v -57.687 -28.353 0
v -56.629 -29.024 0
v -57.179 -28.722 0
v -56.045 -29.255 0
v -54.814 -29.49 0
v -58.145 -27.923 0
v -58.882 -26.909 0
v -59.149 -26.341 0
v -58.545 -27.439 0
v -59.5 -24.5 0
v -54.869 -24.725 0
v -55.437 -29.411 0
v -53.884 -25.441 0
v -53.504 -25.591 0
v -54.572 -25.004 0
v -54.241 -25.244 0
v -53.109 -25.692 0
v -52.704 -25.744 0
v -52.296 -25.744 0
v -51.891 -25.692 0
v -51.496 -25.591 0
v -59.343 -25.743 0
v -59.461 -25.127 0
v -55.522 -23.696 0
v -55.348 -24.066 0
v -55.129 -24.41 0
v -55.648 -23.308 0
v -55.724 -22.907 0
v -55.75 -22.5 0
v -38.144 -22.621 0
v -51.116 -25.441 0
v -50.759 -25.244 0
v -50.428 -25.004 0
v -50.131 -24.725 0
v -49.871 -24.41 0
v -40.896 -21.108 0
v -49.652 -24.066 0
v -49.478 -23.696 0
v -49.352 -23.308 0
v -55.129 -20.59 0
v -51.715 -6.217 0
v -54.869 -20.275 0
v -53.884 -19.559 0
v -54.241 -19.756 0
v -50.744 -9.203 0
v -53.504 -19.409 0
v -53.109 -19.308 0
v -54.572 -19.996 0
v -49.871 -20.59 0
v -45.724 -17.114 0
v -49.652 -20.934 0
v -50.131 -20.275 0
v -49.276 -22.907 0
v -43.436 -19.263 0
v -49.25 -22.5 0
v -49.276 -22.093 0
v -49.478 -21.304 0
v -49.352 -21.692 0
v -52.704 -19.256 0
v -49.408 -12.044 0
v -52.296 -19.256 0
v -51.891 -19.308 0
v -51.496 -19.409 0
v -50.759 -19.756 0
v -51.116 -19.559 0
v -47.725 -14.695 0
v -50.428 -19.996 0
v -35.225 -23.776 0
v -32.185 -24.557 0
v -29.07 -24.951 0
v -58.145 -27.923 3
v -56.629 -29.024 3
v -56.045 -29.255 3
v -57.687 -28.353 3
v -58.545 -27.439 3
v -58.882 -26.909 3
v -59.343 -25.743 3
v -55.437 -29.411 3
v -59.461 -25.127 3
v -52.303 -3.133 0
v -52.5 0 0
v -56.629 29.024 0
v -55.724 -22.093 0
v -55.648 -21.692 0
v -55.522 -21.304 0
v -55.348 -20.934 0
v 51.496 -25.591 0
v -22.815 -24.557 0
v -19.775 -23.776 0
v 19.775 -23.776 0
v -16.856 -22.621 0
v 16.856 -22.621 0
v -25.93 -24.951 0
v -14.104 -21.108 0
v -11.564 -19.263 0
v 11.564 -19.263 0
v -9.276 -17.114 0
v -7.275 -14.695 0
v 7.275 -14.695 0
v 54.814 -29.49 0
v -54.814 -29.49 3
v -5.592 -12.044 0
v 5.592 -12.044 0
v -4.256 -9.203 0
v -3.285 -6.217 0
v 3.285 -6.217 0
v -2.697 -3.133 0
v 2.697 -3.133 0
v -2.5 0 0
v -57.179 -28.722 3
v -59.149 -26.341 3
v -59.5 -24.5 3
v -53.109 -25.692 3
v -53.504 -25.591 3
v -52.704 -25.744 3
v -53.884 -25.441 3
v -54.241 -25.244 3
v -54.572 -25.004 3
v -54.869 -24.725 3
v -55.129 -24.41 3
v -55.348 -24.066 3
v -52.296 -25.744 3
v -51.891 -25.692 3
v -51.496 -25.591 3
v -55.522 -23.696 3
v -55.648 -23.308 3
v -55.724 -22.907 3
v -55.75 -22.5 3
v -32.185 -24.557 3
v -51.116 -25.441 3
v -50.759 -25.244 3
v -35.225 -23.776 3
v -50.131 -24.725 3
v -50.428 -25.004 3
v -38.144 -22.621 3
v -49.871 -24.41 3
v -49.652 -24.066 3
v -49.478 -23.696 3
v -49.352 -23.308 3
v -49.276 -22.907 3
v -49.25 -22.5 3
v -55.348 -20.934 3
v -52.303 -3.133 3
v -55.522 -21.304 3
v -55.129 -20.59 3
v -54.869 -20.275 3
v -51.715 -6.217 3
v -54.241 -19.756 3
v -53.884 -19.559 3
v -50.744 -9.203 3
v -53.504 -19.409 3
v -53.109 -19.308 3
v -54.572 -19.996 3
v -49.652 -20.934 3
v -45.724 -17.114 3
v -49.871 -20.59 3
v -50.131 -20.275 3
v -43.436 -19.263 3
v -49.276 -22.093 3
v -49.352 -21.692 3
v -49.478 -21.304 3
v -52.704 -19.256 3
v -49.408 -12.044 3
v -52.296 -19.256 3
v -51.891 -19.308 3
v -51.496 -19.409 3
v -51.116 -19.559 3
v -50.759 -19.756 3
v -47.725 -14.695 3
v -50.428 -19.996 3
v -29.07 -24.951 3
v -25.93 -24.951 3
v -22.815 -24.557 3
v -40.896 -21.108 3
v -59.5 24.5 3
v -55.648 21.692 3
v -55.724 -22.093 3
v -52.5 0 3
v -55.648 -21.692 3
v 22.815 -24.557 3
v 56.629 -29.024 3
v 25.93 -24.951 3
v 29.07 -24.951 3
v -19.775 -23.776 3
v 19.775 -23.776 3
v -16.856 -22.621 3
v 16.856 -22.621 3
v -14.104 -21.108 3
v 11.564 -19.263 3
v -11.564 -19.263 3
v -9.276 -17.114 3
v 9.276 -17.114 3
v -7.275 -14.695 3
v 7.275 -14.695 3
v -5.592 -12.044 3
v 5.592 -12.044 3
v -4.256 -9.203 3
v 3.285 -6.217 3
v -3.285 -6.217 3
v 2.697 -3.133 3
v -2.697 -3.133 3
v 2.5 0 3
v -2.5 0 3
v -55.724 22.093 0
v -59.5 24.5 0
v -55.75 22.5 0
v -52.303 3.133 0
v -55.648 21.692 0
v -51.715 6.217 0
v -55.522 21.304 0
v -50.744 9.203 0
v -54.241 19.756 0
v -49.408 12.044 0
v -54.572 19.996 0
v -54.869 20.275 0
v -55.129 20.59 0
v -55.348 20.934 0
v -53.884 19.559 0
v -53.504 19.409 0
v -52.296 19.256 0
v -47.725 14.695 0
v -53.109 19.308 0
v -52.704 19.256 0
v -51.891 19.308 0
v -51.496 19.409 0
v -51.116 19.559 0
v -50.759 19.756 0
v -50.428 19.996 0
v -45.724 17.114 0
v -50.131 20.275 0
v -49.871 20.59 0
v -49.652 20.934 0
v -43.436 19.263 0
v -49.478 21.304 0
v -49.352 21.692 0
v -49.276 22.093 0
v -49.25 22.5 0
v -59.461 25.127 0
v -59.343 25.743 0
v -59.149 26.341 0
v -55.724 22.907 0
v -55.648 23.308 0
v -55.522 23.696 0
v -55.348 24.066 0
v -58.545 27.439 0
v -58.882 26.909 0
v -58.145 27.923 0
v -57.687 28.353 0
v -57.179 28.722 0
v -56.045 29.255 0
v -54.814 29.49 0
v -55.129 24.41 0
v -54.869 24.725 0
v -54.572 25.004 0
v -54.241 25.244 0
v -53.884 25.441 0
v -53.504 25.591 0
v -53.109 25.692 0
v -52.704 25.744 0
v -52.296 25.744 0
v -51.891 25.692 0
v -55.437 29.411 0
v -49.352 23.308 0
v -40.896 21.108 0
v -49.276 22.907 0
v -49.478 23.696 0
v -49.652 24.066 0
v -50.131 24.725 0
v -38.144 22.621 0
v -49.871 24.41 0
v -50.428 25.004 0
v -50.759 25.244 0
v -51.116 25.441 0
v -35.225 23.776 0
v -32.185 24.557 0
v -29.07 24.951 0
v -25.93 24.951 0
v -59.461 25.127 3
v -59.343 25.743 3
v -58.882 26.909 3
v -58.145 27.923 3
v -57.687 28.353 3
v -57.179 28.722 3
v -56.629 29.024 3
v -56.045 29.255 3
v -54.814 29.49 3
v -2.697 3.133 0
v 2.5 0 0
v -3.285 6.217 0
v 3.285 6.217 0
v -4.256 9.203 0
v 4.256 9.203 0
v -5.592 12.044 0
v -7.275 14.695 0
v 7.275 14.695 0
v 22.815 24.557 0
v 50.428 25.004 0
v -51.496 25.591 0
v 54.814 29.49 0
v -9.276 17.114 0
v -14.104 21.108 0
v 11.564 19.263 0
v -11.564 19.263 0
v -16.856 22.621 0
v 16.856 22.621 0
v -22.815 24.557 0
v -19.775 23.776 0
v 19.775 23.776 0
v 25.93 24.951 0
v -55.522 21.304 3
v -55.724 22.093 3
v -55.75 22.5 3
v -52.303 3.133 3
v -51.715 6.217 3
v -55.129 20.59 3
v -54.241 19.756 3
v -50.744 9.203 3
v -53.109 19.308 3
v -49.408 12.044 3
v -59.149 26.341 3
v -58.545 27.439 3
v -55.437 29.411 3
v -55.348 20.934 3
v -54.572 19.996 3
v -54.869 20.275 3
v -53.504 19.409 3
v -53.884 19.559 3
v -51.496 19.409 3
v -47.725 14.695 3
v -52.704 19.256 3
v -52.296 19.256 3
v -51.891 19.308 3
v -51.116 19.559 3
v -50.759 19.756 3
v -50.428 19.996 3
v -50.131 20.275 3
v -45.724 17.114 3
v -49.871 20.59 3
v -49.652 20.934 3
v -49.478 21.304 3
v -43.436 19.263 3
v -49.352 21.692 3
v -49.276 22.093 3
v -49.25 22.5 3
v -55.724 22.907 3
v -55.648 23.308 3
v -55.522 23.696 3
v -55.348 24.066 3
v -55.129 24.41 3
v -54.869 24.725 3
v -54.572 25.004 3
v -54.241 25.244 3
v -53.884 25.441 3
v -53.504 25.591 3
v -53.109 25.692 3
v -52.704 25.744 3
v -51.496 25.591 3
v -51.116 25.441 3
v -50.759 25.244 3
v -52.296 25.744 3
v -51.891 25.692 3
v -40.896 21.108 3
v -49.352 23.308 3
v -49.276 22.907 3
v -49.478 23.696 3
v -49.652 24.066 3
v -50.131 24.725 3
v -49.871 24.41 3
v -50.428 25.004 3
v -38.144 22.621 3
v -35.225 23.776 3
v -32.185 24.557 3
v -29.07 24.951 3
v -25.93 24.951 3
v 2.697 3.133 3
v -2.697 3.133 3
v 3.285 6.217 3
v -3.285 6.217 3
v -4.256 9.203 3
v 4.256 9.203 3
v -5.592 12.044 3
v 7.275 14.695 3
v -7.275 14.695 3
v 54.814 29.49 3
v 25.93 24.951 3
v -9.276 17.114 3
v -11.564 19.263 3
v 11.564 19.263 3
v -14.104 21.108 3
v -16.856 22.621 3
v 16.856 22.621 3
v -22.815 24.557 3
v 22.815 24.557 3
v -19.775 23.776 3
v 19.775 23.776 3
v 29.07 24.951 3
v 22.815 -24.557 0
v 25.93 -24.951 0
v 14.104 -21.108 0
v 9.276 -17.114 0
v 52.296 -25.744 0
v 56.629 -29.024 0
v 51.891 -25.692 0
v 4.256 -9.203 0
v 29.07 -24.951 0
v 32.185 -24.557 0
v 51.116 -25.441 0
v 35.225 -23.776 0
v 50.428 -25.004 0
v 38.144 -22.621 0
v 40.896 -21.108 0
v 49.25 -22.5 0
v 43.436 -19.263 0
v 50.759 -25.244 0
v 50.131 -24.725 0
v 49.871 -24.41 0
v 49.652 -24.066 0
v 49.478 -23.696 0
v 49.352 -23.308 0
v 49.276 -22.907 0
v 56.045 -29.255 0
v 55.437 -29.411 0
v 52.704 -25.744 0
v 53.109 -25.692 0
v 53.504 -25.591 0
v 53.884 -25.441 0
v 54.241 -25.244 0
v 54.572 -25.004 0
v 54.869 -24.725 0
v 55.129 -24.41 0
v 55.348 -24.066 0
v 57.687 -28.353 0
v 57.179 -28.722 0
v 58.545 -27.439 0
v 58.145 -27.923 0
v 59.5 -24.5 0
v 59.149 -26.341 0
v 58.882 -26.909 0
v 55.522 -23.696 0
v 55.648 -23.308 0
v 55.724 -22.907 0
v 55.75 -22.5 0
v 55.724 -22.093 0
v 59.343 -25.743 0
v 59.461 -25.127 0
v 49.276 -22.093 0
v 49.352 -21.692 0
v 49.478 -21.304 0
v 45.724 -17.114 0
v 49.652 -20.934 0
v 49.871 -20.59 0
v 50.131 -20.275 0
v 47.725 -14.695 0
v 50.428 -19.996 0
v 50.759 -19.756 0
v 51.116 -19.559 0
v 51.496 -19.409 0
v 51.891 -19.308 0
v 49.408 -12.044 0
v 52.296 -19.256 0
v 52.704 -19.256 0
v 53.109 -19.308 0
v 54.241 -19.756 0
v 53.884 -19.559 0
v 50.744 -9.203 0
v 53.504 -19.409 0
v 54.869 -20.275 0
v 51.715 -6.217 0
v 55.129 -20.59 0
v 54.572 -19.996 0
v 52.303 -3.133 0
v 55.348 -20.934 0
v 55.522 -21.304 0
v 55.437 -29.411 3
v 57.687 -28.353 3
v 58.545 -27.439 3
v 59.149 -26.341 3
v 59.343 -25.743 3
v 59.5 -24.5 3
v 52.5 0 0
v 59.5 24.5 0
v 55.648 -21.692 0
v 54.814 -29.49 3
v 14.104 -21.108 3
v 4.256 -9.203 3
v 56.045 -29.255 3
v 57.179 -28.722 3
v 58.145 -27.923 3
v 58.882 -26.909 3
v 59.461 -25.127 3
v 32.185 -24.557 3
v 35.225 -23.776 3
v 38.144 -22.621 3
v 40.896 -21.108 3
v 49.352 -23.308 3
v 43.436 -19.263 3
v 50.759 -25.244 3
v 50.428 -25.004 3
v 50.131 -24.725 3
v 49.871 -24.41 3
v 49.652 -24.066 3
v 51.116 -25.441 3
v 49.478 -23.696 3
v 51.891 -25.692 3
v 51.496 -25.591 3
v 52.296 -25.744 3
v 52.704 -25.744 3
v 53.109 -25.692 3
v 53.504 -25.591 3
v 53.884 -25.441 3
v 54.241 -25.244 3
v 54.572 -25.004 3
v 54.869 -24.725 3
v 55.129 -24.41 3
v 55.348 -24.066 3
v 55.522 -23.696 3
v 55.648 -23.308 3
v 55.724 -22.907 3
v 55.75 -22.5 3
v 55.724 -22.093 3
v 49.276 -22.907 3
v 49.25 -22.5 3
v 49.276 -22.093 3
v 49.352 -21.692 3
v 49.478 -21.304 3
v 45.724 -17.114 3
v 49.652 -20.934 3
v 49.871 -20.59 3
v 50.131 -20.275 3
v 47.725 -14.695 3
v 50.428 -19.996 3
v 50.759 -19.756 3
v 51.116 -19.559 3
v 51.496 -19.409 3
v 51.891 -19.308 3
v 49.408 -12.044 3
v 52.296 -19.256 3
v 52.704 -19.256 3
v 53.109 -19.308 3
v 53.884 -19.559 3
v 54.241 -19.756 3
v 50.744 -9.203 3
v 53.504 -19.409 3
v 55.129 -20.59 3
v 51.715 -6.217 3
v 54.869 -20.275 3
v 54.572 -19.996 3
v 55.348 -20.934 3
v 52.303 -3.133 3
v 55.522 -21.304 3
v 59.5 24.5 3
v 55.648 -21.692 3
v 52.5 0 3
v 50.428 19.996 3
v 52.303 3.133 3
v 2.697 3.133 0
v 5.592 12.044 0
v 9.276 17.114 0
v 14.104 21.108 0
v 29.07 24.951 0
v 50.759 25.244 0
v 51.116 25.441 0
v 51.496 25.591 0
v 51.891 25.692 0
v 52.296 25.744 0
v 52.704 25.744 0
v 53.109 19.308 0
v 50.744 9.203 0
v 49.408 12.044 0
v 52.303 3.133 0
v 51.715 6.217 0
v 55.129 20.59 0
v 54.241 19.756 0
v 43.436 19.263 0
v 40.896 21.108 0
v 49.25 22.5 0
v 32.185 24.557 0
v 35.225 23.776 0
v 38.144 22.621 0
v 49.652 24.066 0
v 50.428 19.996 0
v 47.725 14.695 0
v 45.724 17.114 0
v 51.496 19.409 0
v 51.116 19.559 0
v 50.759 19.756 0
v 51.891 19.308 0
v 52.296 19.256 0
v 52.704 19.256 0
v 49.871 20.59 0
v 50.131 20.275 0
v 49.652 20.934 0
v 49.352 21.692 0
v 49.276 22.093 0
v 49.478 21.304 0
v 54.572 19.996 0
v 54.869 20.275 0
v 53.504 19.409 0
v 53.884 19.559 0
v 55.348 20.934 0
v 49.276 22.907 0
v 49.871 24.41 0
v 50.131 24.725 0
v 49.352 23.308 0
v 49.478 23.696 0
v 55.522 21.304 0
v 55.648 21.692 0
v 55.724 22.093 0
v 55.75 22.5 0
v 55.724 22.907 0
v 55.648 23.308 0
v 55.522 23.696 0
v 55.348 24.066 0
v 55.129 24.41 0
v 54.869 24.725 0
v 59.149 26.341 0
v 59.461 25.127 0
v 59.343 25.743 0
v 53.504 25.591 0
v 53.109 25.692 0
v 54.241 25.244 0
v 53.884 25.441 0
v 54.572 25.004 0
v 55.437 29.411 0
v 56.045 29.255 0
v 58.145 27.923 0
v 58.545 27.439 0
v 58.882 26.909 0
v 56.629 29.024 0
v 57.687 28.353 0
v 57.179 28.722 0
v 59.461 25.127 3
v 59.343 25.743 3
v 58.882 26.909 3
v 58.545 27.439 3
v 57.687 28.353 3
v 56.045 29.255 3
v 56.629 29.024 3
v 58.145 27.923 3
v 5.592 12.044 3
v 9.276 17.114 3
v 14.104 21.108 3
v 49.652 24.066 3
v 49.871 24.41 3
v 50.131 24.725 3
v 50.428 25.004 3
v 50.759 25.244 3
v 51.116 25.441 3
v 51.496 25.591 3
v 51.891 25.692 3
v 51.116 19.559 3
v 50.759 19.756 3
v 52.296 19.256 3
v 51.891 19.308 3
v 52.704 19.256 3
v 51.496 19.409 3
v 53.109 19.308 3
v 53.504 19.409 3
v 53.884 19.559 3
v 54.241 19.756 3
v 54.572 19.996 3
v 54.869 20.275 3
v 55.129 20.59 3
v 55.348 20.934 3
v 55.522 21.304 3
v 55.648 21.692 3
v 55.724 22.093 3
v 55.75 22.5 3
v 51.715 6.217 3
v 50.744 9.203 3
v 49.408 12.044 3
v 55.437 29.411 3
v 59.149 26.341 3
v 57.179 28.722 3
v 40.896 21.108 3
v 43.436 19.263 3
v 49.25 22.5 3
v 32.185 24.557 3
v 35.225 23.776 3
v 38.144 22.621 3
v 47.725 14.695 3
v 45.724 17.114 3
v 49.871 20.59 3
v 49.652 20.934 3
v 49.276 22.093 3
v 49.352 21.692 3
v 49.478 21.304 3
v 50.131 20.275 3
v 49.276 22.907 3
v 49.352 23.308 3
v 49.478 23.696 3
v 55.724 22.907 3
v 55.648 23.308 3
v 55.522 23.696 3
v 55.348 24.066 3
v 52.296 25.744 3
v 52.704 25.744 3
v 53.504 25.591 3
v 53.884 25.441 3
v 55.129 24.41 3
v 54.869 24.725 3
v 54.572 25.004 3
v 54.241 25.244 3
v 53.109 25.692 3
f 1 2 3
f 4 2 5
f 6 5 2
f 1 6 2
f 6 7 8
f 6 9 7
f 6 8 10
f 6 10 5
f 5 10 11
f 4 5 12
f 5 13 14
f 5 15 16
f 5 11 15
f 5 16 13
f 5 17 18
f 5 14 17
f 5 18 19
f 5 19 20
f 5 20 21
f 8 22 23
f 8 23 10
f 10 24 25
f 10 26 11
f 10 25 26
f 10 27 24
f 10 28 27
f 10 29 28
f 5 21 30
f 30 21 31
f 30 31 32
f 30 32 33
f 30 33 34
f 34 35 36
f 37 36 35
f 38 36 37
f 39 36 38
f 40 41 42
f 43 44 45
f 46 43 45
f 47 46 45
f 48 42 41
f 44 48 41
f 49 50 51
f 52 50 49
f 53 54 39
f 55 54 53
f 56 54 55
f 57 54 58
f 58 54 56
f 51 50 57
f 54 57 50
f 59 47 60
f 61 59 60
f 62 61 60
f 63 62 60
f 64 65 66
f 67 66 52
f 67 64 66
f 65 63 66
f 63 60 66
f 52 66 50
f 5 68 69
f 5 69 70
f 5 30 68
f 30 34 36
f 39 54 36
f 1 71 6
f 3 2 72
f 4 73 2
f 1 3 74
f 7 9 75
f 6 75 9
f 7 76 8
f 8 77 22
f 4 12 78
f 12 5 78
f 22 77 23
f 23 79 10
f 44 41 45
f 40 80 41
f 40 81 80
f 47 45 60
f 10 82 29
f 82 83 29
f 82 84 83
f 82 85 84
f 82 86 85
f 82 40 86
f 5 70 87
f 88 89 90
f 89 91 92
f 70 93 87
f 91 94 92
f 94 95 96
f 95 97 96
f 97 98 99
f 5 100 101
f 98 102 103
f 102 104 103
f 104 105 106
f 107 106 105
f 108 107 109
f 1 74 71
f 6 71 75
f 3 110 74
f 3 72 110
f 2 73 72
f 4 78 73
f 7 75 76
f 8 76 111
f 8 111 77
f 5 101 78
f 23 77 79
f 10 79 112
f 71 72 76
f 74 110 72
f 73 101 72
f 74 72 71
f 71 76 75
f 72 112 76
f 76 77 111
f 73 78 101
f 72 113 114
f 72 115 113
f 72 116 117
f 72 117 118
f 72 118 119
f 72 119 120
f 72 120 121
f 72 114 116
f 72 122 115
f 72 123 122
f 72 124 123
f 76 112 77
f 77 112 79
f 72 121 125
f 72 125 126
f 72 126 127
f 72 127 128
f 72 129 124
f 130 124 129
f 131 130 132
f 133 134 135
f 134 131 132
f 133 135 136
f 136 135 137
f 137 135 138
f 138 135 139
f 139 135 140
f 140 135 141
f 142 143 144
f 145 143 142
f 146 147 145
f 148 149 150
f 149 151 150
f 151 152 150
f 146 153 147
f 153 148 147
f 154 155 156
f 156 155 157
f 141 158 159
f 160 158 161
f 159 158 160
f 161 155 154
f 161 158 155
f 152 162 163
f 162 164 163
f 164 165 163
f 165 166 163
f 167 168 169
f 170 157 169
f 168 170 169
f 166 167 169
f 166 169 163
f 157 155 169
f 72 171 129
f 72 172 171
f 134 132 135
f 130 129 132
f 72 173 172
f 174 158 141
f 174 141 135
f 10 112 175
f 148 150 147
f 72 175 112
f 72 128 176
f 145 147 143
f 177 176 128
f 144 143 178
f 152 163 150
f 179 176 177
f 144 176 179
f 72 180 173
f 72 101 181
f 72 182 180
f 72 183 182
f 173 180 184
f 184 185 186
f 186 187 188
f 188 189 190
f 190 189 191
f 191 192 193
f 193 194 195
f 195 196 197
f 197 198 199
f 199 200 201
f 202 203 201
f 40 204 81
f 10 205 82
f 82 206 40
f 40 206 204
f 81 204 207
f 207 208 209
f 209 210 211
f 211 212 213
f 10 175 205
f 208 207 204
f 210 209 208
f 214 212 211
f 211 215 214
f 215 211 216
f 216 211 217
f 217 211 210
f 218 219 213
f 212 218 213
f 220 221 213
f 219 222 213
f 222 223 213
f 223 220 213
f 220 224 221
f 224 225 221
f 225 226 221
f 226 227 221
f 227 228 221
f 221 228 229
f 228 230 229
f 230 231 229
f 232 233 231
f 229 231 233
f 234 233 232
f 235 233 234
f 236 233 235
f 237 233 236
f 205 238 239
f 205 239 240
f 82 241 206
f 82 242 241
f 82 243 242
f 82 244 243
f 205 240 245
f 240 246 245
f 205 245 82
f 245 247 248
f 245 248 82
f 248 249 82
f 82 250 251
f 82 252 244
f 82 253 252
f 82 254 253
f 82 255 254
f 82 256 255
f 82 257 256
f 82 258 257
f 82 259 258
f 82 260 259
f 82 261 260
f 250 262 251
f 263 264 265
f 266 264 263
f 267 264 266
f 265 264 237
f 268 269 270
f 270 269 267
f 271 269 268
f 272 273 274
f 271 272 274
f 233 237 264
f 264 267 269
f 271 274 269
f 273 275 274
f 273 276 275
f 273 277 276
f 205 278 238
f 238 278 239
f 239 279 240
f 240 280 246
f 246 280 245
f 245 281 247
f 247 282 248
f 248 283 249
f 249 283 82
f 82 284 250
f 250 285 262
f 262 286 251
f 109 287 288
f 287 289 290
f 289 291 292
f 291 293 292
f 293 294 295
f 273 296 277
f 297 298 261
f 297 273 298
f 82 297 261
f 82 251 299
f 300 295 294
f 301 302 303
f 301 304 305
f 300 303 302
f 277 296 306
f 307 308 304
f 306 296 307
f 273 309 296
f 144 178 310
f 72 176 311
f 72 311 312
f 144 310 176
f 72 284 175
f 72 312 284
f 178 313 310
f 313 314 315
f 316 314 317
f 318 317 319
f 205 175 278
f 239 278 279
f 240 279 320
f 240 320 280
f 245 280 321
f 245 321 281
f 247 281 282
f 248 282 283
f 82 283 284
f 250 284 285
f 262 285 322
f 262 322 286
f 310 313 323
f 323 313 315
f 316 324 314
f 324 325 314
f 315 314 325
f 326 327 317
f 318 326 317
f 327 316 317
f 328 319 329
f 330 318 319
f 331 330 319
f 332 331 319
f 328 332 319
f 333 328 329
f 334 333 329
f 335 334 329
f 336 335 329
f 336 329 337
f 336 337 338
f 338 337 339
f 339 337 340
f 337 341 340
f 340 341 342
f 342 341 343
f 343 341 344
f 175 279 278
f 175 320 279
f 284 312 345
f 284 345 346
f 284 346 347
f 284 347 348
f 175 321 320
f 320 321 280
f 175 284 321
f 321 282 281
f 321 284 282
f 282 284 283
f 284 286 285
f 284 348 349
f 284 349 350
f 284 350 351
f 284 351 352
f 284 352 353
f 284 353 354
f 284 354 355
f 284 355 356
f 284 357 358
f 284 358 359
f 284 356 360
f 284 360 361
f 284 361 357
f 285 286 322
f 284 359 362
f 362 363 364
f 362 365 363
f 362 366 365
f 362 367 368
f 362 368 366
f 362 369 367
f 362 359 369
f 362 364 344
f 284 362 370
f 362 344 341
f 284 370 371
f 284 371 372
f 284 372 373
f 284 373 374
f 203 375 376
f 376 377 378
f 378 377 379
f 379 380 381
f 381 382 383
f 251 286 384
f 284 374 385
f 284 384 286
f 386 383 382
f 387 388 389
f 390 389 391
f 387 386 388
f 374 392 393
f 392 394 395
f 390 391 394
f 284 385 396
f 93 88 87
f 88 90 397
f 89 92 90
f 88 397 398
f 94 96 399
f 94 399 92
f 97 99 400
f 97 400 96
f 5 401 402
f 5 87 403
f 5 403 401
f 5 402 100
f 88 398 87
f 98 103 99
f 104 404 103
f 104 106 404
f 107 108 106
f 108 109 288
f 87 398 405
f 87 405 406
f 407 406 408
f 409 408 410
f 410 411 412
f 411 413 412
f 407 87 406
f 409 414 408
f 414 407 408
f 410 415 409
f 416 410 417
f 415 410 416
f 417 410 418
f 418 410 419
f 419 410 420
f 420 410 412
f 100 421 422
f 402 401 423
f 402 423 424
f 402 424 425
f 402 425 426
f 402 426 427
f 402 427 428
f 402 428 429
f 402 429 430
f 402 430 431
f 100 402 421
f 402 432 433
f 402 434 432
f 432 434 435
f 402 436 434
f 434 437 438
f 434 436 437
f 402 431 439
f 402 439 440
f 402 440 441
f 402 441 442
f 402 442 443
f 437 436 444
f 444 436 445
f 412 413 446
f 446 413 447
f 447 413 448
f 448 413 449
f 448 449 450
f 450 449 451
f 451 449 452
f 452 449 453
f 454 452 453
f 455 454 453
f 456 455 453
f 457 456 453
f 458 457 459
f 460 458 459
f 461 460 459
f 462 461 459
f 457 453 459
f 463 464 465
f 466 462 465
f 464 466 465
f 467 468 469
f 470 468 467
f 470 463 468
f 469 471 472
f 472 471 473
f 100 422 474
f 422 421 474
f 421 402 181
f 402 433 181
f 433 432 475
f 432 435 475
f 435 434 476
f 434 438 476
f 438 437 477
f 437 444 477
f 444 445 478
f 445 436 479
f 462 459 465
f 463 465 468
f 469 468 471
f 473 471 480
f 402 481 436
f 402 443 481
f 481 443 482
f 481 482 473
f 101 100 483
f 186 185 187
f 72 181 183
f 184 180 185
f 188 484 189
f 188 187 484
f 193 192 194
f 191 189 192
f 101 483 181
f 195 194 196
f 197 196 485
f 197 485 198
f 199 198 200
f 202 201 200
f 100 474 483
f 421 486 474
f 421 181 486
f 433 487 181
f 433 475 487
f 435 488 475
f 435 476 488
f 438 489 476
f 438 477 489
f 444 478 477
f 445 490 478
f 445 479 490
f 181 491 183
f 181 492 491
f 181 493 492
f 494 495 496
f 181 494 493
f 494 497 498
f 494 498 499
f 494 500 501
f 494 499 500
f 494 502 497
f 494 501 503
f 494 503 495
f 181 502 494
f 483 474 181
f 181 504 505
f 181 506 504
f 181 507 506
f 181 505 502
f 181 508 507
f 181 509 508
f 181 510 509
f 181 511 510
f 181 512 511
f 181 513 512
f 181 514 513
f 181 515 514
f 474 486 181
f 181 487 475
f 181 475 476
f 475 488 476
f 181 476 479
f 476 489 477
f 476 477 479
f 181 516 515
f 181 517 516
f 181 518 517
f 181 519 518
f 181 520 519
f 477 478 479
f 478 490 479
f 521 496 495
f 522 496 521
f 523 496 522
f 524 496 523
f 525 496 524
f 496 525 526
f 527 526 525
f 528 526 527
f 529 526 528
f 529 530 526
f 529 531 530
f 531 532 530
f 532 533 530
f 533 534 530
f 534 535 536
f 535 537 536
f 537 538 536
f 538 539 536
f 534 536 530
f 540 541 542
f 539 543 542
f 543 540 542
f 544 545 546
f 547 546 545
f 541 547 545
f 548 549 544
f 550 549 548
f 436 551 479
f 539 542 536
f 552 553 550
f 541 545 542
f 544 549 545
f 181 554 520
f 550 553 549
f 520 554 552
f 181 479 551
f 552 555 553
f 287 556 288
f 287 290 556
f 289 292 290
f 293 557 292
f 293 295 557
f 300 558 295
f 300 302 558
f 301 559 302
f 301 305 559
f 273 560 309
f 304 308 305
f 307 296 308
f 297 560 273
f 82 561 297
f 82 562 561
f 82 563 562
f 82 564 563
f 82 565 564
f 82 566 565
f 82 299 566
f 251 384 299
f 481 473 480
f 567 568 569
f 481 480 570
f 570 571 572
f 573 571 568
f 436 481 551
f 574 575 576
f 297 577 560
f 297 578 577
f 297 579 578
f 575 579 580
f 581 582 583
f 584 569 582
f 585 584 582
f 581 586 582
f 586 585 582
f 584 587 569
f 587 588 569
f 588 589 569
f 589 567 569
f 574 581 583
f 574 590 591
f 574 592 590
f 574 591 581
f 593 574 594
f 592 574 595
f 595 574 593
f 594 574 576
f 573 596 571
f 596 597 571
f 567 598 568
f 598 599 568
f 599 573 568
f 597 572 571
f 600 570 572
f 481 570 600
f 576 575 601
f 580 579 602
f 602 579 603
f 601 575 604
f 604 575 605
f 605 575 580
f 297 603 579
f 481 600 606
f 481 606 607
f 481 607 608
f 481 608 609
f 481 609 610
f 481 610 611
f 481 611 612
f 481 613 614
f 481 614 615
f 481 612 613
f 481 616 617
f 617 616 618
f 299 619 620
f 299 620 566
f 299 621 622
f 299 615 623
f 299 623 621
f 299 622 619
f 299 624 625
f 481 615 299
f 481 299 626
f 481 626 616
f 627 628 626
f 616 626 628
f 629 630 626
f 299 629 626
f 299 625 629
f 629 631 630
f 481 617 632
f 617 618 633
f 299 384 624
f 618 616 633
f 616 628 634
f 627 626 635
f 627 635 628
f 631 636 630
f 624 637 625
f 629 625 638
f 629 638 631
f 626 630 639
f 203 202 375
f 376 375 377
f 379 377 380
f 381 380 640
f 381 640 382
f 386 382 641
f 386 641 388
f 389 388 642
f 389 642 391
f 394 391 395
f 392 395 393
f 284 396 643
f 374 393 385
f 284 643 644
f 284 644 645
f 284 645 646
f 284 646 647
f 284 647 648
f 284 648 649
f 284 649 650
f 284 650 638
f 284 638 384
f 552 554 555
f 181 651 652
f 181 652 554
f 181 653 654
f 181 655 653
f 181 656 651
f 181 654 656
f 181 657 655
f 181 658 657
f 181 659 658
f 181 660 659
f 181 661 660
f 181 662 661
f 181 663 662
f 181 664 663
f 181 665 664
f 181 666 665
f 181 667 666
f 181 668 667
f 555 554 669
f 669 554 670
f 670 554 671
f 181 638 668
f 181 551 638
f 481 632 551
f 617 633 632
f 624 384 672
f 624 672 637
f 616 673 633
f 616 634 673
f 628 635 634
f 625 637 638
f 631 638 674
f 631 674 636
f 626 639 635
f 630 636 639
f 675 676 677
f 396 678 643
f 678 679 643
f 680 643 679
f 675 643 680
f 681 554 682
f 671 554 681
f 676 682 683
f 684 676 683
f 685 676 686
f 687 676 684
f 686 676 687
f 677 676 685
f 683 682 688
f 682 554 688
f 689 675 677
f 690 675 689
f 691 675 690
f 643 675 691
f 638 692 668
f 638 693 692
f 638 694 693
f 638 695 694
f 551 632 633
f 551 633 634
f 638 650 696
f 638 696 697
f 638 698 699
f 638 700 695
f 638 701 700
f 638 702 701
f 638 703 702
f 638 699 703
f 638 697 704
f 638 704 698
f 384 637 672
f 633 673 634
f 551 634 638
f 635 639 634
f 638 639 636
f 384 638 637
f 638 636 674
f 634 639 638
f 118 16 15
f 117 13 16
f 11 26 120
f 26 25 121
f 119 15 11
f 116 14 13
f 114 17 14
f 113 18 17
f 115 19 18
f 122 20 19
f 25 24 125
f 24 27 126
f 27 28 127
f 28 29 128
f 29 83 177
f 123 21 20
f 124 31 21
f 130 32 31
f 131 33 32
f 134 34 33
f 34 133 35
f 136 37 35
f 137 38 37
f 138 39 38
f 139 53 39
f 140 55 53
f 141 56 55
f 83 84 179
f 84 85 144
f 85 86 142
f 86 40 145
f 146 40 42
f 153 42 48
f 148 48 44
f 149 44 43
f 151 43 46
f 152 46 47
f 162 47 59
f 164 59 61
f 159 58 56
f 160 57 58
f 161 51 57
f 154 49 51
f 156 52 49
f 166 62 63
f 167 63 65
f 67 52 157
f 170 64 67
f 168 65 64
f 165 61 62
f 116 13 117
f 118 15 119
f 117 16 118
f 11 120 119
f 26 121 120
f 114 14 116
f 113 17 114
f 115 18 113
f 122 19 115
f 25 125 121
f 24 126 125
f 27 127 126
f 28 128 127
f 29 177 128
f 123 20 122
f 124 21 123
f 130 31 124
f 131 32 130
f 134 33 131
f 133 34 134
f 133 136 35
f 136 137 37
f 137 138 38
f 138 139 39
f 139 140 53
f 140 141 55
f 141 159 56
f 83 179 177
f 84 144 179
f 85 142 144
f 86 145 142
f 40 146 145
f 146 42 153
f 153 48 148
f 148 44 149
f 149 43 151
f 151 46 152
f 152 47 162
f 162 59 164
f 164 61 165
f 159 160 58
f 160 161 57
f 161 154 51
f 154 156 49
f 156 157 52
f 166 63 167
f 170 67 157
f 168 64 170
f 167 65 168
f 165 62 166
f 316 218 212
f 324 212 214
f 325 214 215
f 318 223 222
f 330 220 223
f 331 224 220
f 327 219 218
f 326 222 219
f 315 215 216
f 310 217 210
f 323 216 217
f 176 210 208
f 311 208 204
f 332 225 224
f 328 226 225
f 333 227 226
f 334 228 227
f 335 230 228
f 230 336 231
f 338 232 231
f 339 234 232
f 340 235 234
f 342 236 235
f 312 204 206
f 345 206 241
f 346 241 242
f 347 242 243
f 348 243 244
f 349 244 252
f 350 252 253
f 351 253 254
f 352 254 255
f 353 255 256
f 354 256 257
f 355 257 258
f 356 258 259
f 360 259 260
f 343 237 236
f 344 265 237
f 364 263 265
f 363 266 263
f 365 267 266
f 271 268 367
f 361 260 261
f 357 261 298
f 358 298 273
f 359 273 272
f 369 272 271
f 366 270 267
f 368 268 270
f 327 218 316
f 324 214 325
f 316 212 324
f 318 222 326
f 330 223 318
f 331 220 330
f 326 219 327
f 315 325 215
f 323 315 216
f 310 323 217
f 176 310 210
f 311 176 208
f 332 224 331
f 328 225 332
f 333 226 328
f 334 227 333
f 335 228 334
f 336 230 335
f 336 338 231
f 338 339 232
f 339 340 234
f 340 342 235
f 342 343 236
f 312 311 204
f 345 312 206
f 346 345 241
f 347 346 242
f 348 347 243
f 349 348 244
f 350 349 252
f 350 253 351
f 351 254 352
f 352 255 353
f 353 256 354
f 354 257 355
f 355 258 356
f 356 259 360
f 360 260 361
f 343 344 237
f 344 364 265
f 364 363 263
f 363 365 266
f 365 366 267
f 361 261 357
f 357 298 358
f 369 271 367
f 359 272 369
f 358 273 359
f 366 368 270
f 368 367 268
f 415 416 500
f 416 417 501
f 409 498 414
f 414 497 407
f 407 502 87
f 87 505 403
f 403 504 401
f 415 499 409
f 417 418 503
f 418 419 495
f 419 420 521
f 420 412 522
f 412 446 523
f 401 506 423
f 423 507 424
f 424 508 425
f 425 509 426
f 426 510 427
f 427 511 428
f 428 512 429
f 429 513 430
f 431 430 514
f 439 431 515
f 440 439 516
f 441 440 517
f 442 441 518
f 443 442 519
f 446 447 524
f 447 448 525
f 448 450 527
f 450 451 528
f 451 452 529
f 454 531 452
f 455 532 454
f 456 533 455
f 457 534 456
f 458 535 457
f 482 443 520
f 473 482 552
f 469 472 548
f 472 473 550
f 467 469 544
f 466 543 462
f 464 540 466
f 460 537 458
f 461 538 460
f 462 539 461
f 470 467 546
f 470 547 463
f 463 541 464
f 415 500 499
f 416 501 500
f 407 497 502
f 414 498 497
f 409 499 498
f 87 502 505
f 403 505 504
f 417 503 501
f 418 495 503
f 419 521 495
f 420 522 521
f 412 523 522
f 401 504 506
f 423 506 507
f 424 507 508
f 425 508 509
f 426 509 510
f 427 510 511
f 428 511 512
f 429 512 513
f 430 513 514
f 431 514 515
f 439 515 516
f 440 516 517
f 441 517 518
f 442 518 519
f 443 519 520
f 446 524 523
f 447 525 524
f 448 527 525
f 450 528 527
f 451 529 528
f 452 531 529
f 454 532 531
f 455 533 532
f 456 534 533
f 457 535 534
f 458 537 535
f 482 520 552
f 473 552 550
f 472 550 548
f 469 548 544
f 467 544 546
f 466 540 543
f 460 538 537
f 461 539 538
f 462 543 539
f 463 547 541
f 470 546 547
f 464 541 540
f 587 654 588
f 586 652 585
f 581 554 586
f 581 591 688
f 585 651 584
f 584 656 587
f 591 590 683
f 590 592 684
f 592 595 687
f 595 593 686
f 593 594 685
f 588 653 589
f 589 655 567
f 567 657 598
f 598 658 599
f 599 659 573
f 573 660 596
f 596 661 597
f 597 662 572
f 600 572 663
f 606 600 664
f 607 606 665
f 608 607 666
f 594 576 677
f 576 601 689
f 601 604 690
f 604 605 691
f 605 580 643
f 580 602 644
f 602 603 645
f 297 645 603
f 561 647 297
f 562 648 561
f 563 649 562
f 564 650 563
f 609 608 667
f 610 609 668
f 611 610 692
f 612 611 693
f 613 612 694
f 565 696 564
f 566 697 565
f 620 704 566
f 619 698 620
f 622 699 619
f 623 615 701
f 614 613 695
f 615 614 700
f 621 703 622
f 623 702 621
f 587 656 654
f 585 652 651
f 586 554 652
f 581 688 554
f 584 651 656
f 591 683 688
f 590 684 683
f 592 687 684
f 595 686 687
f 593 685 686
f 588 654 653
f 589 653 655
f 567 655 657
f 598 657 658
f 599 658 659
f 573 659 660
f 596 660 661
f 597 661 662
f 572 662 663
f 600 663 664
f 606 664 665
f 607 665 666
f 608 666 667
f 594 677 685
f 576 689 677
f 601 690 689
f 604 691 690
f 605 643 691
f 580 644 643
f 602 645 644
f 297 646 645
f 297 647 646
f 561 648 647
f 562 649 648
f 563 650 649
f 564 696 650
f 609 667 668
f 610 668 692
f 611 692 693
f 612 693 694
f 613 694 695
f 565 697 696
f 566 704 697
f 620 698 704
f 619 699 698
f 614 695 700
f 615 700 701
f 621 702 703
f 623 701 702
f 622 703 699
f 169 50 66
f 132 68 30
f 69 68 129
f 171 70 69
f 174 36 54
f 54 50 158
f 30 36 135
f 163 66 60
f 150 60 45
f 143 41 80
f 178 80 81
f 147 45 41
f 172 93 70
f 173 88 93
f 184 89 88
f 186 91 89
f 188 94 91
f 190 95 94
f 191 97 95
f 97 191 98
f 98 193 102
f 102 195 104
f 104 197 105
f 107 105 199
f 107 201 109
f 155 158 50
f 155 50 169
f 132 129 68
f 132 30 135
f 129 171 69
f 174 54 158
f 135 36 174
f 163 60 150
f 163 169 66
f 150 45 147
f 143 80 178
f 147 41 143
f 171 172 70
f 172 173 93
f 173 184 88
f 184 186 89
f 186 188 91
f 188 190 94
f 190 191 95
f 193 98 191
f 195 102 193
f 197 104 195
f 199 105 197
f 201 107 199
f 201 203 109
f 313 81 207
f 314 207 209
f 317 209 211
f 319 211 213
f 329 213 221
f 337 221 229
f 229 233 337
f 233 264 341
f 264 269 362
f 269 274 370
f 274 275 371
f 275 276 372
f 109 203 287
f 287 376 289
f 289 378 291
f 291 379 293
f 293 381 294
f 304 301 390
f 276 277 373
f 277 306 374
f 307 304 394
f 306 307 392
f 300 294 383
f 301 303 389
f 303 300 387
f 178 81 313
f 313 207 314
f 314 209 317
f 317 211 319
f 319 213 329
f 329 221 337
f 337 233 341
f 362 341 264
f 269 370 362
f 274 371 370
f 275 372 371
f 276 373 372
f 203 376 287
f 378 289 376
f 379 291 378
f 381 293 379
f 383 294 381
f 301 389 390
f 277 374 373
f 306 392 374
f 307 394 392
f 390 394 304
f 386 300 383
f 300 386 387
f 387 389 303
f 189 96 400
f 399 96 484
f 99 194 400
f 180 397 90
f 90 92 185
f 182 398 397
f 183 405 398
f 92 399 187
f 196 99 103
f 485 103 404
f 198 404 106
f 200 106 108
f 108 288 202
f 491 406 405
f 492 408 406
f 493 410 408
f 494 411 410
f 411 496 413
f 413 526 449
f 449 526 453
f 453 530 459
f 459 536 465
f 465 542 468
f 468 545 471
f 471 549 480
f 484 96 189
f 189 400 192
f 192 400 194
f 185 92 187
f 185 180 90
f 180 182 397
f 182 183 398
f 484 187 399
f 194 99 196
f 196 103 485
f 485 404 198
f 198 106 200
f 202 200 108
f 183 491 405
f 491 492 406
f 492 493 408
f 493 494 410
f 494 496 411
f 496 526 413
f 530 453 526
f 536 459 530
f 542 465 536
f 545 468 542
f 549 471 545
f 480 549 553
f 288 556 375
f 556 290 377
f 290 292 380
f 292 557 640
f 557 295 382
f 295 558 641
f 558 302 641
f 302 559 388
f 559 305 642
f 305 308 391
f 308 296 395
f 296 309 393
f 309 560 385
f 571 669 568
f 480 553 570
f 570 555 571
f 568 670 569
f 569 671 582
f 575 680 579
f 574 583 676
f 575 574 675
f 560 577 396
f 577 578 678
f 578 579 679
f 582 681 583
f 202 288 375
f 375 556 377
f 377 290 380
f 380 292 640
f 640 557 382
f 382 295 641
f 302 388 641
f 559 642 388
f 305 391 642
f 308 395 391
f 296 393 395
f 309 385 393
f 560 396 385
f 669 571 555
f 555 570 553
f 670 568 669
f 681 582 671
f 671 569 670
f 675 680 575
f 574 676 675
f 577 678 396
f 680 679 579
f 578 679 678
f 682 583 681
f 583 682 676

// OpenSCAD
$fn = 50;

difference() {
	union() {
		hull() {
			translate(v = [-54.5, 24.5, 0]) {
				cylinder(h = 3, r = 5);
			}
			translate(v = [54.5, 24.5, 0]) {
				cylinder(h = 3, r = 5);
			}
			translate(v = [-54.5, -24.5, 0]) {
				cylinder(h = 3, r = 5);
			}
			translate(v = [54.5, -24.5, 0]) {
				cylinder(h = 3, r = 5);
			}
		}
	}
	union() {
		translate(v = [-52.5, -22.5, -100.0]) {
			cylinder(h = 200, r = 3.25);
		}
		translate(v = [-52.5, 22.5, -100.0]) {
			cylinder(h = 200, r = 3.25);
		}
		translate(v = [52.5, -22.5, -100.0]) {
			cylinder(h = 200, r = 3.25);
		}
		translate(v = [52.5, 22.5, -100.0]) {
			cylinder(h = 200, r = 3.25);
		}
		translate(v = [-52.5, -22.5, -100.0]) {
			cylinder(h = 200, r = 1.8);
		}
		translate(v = [-52.5, 22.5, -100.0]) {
			cylinder(h = 200, r = 1.8);
		}
		translate(v = [52.5, -22.5, -100.0]) {
			cylinder(h = 200, r = 1.8);
		}
		translate(v = [52.5, 22.5, -100.0]) {
			cylinder(h = 200, r = 1.8);
		}
		translate(v = [-27.5, 0, 0.0]) {
			cylinder(h = 3, r = 25.0);
		}
		translate(v = [27.5, 0, 0.0]) {
			cylinder(h = 3, r = 25.0);
		}
	}
}
